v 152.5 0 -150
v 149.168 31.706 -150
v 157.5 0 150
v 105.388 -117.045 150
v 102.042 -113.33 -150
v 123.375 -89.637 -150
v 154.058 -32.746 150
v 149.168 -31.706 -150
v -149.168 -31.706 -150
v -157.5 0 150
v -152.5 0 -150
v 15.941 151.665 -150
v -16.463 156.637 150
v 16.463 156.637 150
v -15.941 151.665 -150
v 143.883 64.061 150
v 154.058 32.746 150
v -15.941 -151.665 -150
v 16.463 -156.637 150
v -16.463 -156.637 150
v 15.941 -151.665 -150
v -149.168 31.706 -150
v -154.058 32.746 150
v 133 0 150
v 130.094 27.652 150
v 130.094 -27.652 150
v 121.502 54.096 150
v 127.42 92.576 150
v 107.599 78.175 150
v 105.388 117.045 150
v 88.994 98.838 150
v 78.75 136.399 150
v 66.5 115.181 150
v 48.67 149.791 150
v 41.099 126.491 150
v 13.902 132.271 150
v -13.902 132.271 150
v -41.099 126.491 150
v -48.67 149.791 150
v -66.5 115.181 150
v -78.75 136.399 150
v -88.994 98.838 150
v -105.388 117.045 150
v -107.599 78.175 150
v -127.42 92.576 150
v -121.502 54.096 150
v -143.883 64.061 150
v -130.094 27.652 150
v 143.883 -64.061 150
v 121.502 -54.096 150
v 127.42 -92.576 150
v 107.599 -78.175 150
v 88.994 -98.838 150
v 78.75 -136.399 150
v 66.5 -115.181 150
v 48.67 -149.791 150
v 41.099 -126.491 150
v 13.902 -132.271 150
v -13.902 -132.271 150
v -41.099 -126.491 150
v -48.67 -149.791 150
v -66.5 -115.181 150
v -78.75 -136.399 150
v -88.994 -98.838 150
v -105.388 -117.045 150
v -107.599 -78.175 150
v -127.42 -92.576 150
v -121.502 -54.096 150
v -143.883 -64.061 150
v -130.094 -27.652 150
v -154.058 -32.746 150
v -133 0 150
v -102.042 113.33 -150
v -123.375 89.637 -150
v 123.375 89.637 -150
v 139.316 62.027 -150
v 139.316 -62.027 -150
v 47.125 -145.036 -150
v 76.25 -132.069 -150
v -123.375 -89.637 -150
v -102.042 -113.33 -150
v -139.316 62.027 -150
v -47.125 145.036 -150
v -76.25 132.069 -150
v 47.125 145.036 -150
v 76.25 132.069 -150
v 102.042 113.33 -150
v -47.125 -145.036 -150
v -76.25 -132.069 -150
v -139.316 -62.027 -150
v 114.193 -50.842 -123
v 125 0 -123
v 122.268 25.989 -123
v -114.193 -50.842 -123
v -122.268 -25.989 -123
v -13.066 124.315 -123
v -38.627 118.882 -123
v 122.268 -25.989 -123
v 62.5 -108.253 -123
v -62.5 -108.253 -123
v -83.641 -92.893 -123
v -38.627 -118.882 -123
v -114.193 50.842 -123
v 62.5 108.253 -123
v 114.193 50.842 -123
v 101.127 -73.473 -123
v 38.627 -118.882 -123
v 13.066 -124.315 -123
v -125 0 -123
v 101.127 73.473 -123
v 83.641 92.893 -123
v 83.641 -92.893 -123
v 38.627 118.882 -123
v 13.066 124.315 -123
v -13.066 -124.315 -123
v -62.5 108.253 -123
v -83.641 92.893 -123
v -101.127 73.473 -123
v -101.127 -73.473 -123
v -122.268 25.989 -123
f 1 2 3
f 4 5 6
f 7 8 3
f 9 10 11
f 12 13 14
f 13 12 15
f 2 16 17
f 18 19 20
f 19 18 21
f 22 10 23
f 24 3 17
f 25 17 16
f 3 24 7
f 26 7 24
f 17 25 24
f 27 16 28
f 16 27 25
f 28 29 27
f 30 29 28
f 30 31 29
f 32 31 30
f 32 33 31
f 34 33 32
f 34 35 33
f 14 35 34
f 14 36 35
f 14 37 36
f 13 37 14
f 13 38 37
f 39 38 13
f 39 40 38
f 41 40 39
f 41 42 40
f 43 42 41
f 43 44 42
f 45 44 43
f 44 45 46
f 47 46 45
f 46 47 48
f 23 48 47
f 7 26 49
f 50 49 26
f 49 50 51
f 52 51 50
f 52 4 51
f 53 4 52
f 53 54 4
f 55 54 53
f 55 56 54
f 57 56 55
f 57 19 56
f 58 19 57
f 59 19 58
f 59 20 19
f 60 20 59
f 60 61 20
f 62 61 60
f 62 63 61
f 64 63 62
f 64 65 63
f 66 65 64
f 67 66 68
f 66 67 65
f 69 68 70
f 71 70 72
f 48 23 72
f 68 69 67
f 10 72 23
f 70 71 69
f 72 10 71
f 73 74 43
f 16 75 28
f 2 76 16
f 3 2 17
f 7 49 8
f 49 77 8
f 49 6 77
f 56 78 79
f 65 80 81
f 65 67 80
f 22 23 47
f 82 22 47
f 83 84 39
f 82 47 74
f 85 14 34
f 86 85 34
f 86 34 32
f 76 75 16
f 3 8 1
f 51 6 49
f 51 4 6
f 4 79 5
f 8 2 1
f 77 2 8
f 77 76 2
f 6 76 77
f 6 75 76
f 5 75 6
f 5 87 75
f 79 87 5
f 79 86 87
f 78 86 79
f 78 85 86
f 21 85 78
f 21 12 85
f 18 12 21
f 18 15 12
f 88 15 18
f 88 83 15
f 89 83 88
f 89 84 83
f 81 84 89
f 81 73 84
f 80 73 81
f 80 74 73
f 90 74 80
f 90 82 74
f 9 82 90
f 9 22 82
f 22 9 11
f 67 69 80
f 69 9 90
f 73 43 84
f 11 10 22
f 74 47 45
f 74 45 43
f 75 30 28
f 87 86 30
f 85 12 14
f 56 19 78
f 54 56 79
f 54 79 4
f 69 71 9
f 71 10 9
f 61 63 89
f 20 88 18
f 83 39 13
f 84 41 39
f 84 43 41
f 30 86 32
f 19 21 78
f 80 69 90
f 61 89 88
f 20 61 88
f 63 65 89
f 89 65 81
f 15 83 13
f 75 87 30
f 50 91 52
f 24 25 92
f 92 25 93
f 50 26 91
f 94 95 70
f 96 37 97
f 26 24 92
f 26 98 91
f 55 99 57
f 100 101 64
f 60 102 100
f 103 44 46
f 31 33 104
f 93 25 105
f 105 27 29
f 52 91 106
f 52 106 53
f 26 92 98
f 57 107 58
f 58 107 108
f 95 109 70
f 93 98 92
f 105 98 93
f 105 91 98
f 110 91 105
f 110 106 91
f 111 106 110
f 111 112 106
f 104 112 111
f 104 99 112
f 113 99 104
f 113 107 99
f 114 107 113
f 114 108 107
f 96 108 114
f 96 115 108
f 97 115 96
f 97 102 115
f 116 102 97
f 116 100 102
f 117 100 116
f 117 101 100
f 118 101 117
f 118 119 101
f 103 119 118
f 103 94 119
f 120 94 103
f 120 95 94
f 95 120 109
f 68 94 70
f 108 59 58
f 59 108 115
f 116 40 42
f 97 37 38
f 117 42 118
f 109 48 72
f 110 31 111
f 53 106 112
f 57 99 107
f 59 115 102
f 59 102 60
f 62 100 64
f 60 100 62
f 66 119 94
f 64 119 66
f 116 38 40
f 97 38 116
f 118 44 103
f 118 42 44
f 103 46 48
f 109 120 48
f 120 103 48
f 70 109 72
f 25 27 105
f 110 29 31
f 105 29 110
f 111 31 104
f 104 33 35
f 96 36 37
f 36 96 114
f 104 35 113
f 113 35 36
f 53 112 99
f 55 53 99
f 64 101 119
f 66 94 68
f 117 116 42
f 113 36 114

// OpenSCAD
// From Facebook.
difference() {
    cylinder(r1 = 305/2, r2 = 315/2, h = 300, center = true);
    translate([0,0, (300-273)/2])
    cylinder(r1 = 250/2, r2 = 266/2, h = 273, center = true);
}
